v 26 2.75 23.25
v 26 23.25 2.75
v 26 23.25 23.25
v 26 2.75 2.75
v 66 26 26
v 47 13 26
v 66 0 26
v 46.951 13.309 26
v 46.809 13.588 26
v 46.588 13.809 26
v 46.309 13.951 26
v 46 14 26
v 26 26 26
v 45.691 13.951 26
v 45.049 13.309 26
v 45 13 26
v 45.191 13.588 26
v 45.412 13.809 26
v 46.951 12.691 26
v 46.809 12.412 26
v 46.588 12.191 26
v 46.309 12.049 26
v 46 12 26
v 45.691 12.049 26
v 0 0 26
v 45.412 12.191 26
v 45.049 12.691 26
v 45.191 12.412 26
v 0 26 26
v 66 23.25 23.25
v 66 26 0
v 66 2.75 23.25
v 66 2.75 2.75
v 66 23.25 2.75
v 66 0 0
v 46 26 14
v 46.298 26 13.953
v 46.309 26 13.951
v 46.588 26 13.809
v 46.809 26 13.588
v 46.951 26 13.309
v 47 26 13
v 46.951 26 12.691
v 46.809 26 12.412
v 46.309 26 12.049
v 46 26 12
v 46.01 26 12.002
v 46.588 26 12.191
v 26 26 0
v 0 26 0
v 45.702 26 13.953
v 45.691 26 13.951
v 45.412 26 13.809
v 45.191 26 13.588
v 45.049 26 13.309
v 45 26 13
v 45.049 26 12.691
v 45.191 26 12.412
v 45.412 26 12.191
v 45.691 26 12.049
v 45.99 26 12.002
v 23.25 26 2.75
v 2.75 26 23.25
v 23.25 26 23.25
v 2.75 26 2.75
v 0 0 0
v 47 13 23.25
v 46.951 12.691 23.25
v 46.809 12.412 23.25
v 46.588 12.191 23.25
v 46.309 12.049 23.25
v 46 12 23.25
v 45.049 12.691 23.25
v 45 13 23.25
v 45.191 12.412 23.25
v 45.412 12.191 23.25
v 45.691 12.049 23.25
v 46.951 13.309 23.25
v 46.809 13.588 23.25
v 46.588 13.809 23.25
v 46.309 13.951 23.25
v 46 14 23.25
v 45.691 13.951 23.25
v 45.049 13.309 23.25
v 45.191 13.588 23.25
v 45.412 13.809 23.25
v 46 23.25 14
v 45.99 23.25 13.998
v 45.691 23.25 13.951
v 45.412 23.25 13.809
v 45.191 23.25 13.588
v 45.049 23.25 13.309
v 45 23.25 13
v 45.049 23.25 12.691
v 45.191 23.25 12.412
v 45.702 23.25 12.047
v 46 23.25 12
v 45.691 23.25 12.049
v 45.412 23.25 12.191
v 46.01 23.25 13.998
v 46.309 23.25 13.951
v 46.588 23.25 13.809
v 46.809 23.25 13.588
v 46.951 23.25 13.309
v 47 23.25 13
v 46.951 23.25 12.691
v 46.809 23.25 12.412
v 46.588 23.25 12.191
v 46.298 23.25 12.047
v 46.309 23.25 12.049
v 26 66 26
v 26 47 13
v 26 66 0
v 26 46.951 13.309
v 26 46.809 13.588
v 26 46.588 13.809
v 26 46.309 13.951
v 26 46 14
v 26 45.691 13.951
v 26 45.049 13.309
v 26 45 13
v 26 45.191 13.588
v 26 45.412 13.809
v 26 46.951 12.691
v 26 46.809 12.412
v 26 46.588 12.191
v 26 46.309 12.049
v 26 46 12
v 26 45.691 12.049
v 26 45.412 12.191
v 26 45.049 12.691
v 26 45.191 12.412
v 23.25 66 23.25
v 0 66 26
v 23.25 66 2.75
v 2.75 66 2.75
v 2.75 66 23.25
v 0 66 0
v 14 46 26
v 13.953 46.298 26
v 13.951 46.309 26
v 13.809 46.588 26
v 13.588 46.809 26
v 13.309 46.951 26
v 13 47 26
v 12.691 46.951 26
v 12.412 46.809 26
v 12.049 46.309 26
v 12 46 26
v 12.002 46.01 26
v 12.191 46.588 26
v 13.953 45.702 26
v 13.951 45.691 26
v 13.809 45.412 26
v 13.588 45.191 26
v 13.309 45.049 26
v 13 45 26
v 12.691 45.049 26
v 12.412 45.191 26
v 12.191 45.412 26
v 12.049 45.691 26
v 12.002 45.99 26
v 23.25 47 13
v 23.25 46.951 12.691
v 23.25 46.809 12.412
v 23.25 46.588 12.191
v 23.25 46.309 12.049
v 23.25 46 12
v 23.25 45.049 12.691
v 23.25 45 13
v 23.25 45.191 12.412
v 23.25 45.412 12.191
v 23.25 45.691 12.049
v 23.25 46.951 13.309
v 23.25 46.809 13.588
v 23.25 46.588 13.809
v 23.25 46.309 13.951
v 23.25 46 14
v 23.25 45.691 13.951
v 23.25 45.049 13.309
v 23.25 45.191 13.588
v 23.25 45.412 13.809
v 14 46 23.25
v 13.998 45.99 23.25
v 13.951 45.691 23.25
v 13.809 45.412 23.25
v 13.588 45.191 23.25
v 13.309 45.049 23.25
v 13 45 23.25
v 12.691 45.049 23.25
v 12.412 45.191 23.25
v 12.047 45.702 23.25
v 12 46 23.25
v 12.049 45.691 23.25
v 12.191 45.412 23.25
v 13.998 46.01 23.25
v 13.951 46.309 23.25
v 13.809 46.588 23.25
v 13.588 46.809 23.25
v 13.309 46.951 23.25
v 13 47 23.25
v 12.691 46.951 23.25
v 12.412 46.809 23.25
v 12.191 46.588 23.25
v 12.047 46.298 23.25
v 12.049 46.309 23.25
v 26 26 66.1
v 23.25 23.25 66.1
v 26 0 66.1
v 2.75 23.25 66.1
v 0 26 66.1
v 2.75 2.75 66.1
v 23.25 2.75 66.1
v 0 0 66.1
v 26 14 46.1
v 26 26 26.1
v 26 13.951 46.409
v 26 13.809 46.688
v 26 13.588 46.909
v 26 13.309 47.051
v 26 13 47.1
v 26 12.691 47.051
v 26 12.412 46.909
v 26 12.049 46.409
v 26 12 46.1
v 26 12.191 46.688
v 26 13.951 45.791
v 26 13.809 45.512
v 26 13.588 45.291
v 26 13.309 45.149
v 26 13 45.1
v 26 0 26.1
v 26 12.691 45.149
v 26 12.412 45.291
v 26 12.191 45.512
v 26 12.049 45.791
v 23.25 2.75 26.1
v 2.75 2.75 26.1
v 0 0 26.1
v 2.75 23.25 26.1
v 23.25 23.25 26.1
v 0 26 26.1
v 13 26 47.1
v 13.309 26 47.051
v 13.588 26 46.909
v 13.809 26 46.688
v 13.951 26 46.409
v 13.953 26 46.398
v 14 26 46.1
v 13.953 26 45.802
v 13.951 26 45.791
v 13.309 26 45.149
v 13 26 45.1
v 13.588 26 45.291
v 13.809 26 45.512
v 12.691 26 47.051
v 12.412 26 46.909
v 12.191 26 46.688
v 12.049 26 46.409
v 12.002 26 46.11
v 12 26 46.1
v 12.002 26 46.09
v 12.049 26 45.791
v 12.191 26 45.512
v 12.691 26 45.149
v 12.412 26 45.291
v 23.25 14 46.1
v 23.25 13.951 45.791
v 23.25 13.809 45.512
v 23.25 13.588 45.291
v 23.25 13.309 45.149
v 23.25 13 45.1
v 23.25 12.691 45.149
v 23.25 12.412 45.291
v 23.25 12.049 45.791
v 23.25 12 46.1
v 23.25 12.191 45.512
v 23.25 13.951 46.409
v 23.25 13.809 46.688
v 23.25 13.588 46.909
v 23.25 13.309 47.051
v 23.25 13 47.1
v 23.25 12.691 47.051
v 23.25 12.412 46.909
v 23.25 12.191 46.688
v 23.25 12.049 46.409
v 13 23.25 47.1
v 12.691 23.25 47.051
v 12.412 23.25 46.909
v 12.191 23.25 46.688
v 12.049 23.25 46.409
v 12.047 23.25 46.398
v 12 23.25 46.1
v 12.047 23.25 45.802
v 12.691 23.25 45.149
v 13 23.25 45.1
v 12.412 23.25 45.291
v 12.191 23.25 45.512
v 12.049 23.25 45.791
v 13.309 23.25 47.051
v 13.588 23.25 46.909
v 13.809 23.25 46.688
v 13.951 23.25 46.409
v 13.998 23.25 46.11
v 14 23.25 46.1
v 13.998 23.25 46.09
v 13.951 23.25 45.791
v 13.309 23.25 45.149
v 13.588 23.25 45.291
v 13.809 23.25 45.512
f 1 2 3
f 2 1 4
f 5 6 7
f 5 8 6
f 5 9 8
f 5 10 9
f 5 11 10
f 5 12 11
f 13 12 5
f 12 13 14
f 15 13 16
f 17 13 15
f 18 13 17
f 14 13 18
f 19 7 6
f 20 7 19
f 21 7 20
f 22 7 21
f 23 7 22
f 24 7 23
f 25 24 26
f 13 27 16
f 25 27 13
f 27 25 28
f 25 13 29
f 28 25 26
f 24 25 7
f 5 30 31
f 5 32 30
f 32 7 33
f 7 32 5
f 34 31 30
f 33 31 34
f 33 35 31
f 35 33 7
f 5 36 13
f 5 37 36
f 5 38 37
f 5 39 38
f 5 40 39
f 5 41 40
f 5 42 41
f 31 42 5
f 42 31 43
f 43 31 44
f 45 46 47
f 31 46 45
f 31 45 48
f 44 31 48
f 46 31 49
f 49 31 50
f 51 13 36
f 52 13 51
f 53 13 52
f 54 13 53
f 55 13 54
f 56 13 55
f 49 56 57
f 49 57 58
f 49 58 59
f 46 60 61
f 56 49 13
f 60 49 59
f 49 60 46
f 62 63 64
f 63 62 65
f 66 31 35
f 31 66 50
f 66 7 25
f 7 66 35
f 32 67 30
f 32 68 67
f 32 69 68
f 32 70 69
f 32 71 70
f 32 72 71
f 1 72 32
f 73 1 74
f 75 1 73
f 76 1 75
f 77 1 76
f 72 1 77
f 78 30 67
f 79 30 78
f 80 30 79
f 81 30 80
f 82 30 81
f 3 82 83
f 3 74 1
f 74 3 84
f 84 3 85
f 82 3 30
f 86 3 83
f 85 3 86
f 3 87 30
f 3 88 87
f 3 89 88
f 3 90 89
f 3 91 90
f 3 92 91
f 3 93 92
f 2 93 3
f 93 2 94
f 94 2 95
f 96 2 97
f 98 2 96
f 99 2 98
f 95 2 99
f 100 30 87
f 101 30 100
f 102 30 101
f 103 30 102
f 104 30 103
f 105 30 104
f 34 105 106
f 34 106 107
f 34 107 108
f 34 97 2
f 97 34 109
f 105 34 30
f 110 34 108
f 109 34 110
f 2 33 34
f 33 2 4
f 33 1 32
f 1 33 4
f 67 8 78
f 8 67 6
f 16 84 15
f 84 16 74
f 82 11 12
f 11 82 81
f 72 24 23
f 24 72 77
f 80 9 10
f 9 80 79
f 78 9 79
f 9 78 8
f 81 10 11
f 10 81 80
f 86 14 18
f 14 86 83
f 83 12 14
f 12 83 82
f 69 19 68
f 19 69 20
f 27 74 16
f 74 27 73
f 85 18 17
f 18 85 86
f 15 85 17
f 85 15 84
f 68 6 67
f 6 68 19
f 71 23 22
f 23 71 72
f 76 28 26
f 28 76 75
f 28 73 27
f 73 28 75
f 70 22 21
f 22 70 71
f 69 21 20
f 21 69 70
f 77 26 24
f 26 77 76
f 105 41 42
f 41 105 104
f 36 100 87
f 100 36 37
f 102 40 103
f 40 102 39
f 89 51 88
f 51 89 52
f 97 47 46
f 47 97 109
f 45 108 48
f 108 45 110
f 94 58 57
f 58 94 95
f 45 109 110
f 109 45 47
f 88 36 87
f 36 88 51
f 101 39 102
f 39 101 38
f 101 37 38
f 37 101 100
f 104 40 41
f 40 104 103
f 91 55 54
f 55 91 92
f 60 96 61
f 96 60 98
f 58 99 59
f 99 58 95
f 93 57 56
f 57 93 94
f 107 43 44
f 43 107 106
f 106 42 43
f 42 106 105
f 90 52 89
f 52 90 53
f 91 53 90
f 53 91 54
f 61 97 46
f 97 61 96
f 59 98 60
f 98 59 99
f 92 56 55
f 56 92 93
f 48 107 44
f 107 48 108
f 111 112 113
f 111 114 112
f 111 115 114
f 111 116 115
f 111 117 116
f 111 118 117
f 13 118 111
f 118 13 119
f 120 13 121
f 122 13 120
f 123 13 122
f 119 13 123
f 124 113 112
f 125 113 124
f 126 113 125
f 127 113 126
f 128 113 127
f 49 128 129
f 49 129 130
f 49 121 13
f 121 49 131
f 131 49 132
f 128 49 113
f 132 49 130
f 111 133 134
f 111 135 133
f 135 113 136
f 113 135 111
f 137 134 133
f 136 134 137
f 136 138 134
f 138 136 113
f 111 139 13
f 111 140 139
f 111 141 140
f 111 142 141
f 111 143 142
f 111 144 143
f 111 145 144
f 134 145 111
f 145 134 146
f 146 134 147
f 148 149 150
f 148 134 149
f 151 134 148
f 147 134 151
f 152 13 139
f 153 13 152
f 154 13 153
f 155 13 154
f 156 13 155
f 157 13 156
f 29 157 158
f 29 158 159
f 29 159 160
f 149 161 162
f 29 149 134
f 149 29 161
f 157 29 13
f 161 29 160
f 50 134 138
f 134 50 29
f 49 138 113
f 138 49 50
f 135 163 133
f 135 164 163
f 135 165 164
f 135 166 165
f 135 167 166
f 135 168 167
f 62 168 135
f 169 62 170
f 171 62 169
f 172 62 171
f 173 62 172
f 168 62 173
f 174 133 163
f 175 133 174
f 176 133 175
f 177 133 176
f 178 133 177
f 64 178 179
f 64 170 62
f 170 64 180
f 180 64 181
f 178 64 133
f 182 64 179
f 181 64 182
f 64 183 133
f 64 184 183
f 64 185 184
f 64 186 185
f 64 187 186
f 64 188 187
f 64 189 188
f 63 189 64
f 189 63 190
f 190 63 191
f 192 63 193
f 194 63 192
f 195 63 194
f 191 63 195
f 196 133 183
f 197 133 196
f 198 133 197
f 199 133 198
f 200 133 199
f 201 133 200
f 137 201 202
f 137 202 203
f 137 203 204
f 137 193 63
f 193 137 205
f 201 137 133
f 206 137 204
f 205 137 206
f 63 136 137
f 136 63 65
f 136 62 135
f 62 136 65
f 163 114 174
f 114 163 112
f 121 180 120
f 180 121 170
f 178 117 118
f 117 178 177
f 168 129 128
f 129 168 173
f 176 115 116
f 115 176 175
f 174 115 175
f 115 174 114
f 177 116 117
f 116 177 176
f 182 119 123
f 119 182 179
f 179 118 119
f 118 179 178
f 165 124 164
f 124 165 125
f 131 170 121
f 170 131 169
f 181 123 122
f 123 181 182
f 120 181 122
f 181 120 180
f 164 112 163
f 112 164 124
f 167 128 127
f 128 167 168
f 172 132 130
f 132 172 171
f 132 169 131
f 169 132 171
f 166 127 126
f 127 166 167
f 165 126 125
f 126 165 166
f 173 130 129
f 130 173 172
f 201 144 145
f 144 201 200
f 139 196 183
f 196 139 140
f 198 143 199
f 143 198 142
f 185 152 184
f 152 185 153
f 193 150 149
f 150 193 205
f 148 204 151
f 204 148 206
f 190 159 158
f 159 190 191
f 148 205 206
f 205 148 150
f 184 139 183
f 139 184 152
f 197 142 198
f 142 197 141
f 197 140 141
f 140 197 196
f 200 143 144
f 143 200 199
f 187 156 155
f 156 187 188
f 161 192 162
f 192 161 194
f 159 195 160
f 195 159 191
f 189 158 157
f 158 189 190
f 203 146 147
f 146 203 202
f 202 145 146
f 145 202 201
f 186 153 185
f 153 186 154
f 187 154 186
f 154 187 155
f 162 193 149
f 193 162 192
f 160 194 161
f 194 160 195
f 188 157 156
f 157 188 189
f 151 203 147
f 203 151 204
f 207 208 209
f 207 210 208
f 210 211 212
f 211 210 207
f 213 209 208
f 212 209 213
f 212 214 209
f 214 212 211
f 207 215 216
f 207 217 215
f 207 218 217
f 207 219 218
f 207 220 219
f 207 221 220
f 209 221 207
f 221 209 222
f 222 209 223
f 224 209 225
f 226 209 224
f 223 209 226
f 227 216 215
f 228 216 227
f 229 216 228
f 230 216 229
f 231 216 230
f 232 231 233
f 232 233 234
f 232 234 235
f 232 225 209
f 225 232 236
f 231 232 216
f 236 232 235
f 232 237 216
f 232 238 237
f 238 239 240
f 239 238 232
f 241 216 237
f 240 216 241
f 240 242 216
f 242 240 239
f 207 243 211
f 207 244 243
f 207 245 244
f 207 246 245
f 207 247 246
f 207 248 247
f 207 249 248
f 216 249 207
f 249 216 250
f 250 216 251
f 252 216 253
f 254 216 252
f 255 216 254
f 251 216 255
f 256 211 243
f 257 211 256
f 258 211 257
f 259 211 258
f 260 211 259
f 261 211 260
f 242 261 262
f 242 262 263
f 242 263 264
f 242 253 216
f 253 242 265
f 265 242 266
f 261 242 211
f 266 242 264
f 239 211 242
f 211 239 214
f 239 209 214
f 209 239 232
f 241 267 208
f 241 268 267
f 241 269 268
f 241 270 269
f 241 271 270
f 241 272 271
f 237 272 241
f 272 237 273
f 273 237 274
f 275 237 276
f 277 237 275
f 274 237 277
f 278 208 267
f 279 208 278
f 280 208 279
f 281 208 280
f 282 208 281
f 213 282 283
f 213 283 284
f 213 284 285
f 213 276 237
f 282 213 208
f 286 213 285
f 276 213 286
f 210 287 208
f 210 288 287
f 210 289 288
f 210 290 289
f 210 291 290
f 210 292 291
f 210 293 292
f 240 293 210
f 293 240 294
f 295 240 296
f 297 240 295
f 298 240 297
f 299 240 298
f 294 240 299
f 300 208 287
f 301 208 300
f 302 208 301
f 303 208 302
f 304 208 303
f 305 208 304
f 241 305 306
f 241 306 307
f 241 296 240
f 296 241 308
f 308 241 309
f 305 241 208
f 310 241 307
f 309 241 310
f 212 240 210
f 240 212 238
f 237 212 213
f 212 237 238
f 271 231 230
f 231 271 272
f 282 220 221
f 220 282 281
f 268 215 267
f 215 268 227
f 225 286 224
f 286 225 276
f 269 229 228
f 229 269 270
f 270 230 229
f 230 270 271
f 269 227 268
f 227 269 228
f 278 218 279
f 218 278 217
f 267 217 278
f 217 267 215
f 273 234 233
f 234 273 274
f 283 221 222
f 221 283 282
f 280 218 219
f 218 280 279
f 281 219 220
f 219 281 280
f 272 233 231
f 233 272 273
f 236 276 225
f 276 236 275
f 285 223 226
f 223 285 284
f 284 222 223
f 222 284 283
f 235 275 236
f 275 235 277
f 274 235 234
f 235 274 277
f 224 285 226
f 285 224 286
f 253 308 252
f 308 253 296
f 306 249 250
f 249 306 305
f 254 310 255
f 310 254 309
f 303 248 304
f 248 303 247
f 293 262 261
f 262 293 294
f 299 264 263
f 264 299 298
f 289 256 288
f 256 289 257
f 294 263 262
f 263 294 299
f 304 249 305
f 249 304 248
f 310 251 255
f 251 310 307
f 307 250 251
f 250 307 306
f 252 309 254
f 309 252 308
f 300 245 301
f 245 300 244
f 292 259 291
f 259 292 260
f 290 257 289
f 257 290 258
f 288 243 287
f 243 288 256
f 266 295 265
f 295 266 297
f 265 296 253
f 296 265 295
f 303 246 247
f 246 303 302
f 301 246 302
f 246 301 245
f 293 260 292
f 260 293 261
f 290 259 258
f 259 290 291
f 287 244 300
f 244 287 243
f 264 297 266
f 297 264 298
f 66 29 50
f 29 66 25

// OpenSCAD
$fn = 20;

/* [Parameters] */
// Length of the tips
length = 40;
// Width of the tips
width = 26;
// Width of the profile
widthProf = 20.5;
// Exceeding of the void profile
fudge = 0.1;
// Diameter of the holes
diameter = 2;

thick = (width-widthProf) / 2;

module tip(center=true)
{
    translate([
        (center) ? 0 : length/2,
        (center) ? 0 : width/2,
        (center) ? 0 : width/2
    ])
    {
        difference()
        {
            color("blue")
            cube([length, width, width], center=true);
            
            color("red")
            //translate([0, thick, thick])
            cube([length+fudge, widthProf, widthProf], center=true);
        
            color("yellow")
            translate([0, 0, widthProf/2+thick/2])
            cylinder(h=thick+2*fudge, r=diameter/2, center=true);
            
            color("yellow")
            translate([0, widthProf/2+thick/2, 0])
            rotate([90, 0,0])
            cylinder(h=thick+2*fudge, r=diameter/2, center=true);
        }
    }
}

union()
{
    color("green")
    cube(width);
    
    translate([width,0,0])
    tip(false);
    
    translate([0, width, 0])
    rotate([90,0,90])
    tip(false);
    
    translate([0, 0, length+width+0.1])
    rotate([0,90,0])
    tip(false);
}
